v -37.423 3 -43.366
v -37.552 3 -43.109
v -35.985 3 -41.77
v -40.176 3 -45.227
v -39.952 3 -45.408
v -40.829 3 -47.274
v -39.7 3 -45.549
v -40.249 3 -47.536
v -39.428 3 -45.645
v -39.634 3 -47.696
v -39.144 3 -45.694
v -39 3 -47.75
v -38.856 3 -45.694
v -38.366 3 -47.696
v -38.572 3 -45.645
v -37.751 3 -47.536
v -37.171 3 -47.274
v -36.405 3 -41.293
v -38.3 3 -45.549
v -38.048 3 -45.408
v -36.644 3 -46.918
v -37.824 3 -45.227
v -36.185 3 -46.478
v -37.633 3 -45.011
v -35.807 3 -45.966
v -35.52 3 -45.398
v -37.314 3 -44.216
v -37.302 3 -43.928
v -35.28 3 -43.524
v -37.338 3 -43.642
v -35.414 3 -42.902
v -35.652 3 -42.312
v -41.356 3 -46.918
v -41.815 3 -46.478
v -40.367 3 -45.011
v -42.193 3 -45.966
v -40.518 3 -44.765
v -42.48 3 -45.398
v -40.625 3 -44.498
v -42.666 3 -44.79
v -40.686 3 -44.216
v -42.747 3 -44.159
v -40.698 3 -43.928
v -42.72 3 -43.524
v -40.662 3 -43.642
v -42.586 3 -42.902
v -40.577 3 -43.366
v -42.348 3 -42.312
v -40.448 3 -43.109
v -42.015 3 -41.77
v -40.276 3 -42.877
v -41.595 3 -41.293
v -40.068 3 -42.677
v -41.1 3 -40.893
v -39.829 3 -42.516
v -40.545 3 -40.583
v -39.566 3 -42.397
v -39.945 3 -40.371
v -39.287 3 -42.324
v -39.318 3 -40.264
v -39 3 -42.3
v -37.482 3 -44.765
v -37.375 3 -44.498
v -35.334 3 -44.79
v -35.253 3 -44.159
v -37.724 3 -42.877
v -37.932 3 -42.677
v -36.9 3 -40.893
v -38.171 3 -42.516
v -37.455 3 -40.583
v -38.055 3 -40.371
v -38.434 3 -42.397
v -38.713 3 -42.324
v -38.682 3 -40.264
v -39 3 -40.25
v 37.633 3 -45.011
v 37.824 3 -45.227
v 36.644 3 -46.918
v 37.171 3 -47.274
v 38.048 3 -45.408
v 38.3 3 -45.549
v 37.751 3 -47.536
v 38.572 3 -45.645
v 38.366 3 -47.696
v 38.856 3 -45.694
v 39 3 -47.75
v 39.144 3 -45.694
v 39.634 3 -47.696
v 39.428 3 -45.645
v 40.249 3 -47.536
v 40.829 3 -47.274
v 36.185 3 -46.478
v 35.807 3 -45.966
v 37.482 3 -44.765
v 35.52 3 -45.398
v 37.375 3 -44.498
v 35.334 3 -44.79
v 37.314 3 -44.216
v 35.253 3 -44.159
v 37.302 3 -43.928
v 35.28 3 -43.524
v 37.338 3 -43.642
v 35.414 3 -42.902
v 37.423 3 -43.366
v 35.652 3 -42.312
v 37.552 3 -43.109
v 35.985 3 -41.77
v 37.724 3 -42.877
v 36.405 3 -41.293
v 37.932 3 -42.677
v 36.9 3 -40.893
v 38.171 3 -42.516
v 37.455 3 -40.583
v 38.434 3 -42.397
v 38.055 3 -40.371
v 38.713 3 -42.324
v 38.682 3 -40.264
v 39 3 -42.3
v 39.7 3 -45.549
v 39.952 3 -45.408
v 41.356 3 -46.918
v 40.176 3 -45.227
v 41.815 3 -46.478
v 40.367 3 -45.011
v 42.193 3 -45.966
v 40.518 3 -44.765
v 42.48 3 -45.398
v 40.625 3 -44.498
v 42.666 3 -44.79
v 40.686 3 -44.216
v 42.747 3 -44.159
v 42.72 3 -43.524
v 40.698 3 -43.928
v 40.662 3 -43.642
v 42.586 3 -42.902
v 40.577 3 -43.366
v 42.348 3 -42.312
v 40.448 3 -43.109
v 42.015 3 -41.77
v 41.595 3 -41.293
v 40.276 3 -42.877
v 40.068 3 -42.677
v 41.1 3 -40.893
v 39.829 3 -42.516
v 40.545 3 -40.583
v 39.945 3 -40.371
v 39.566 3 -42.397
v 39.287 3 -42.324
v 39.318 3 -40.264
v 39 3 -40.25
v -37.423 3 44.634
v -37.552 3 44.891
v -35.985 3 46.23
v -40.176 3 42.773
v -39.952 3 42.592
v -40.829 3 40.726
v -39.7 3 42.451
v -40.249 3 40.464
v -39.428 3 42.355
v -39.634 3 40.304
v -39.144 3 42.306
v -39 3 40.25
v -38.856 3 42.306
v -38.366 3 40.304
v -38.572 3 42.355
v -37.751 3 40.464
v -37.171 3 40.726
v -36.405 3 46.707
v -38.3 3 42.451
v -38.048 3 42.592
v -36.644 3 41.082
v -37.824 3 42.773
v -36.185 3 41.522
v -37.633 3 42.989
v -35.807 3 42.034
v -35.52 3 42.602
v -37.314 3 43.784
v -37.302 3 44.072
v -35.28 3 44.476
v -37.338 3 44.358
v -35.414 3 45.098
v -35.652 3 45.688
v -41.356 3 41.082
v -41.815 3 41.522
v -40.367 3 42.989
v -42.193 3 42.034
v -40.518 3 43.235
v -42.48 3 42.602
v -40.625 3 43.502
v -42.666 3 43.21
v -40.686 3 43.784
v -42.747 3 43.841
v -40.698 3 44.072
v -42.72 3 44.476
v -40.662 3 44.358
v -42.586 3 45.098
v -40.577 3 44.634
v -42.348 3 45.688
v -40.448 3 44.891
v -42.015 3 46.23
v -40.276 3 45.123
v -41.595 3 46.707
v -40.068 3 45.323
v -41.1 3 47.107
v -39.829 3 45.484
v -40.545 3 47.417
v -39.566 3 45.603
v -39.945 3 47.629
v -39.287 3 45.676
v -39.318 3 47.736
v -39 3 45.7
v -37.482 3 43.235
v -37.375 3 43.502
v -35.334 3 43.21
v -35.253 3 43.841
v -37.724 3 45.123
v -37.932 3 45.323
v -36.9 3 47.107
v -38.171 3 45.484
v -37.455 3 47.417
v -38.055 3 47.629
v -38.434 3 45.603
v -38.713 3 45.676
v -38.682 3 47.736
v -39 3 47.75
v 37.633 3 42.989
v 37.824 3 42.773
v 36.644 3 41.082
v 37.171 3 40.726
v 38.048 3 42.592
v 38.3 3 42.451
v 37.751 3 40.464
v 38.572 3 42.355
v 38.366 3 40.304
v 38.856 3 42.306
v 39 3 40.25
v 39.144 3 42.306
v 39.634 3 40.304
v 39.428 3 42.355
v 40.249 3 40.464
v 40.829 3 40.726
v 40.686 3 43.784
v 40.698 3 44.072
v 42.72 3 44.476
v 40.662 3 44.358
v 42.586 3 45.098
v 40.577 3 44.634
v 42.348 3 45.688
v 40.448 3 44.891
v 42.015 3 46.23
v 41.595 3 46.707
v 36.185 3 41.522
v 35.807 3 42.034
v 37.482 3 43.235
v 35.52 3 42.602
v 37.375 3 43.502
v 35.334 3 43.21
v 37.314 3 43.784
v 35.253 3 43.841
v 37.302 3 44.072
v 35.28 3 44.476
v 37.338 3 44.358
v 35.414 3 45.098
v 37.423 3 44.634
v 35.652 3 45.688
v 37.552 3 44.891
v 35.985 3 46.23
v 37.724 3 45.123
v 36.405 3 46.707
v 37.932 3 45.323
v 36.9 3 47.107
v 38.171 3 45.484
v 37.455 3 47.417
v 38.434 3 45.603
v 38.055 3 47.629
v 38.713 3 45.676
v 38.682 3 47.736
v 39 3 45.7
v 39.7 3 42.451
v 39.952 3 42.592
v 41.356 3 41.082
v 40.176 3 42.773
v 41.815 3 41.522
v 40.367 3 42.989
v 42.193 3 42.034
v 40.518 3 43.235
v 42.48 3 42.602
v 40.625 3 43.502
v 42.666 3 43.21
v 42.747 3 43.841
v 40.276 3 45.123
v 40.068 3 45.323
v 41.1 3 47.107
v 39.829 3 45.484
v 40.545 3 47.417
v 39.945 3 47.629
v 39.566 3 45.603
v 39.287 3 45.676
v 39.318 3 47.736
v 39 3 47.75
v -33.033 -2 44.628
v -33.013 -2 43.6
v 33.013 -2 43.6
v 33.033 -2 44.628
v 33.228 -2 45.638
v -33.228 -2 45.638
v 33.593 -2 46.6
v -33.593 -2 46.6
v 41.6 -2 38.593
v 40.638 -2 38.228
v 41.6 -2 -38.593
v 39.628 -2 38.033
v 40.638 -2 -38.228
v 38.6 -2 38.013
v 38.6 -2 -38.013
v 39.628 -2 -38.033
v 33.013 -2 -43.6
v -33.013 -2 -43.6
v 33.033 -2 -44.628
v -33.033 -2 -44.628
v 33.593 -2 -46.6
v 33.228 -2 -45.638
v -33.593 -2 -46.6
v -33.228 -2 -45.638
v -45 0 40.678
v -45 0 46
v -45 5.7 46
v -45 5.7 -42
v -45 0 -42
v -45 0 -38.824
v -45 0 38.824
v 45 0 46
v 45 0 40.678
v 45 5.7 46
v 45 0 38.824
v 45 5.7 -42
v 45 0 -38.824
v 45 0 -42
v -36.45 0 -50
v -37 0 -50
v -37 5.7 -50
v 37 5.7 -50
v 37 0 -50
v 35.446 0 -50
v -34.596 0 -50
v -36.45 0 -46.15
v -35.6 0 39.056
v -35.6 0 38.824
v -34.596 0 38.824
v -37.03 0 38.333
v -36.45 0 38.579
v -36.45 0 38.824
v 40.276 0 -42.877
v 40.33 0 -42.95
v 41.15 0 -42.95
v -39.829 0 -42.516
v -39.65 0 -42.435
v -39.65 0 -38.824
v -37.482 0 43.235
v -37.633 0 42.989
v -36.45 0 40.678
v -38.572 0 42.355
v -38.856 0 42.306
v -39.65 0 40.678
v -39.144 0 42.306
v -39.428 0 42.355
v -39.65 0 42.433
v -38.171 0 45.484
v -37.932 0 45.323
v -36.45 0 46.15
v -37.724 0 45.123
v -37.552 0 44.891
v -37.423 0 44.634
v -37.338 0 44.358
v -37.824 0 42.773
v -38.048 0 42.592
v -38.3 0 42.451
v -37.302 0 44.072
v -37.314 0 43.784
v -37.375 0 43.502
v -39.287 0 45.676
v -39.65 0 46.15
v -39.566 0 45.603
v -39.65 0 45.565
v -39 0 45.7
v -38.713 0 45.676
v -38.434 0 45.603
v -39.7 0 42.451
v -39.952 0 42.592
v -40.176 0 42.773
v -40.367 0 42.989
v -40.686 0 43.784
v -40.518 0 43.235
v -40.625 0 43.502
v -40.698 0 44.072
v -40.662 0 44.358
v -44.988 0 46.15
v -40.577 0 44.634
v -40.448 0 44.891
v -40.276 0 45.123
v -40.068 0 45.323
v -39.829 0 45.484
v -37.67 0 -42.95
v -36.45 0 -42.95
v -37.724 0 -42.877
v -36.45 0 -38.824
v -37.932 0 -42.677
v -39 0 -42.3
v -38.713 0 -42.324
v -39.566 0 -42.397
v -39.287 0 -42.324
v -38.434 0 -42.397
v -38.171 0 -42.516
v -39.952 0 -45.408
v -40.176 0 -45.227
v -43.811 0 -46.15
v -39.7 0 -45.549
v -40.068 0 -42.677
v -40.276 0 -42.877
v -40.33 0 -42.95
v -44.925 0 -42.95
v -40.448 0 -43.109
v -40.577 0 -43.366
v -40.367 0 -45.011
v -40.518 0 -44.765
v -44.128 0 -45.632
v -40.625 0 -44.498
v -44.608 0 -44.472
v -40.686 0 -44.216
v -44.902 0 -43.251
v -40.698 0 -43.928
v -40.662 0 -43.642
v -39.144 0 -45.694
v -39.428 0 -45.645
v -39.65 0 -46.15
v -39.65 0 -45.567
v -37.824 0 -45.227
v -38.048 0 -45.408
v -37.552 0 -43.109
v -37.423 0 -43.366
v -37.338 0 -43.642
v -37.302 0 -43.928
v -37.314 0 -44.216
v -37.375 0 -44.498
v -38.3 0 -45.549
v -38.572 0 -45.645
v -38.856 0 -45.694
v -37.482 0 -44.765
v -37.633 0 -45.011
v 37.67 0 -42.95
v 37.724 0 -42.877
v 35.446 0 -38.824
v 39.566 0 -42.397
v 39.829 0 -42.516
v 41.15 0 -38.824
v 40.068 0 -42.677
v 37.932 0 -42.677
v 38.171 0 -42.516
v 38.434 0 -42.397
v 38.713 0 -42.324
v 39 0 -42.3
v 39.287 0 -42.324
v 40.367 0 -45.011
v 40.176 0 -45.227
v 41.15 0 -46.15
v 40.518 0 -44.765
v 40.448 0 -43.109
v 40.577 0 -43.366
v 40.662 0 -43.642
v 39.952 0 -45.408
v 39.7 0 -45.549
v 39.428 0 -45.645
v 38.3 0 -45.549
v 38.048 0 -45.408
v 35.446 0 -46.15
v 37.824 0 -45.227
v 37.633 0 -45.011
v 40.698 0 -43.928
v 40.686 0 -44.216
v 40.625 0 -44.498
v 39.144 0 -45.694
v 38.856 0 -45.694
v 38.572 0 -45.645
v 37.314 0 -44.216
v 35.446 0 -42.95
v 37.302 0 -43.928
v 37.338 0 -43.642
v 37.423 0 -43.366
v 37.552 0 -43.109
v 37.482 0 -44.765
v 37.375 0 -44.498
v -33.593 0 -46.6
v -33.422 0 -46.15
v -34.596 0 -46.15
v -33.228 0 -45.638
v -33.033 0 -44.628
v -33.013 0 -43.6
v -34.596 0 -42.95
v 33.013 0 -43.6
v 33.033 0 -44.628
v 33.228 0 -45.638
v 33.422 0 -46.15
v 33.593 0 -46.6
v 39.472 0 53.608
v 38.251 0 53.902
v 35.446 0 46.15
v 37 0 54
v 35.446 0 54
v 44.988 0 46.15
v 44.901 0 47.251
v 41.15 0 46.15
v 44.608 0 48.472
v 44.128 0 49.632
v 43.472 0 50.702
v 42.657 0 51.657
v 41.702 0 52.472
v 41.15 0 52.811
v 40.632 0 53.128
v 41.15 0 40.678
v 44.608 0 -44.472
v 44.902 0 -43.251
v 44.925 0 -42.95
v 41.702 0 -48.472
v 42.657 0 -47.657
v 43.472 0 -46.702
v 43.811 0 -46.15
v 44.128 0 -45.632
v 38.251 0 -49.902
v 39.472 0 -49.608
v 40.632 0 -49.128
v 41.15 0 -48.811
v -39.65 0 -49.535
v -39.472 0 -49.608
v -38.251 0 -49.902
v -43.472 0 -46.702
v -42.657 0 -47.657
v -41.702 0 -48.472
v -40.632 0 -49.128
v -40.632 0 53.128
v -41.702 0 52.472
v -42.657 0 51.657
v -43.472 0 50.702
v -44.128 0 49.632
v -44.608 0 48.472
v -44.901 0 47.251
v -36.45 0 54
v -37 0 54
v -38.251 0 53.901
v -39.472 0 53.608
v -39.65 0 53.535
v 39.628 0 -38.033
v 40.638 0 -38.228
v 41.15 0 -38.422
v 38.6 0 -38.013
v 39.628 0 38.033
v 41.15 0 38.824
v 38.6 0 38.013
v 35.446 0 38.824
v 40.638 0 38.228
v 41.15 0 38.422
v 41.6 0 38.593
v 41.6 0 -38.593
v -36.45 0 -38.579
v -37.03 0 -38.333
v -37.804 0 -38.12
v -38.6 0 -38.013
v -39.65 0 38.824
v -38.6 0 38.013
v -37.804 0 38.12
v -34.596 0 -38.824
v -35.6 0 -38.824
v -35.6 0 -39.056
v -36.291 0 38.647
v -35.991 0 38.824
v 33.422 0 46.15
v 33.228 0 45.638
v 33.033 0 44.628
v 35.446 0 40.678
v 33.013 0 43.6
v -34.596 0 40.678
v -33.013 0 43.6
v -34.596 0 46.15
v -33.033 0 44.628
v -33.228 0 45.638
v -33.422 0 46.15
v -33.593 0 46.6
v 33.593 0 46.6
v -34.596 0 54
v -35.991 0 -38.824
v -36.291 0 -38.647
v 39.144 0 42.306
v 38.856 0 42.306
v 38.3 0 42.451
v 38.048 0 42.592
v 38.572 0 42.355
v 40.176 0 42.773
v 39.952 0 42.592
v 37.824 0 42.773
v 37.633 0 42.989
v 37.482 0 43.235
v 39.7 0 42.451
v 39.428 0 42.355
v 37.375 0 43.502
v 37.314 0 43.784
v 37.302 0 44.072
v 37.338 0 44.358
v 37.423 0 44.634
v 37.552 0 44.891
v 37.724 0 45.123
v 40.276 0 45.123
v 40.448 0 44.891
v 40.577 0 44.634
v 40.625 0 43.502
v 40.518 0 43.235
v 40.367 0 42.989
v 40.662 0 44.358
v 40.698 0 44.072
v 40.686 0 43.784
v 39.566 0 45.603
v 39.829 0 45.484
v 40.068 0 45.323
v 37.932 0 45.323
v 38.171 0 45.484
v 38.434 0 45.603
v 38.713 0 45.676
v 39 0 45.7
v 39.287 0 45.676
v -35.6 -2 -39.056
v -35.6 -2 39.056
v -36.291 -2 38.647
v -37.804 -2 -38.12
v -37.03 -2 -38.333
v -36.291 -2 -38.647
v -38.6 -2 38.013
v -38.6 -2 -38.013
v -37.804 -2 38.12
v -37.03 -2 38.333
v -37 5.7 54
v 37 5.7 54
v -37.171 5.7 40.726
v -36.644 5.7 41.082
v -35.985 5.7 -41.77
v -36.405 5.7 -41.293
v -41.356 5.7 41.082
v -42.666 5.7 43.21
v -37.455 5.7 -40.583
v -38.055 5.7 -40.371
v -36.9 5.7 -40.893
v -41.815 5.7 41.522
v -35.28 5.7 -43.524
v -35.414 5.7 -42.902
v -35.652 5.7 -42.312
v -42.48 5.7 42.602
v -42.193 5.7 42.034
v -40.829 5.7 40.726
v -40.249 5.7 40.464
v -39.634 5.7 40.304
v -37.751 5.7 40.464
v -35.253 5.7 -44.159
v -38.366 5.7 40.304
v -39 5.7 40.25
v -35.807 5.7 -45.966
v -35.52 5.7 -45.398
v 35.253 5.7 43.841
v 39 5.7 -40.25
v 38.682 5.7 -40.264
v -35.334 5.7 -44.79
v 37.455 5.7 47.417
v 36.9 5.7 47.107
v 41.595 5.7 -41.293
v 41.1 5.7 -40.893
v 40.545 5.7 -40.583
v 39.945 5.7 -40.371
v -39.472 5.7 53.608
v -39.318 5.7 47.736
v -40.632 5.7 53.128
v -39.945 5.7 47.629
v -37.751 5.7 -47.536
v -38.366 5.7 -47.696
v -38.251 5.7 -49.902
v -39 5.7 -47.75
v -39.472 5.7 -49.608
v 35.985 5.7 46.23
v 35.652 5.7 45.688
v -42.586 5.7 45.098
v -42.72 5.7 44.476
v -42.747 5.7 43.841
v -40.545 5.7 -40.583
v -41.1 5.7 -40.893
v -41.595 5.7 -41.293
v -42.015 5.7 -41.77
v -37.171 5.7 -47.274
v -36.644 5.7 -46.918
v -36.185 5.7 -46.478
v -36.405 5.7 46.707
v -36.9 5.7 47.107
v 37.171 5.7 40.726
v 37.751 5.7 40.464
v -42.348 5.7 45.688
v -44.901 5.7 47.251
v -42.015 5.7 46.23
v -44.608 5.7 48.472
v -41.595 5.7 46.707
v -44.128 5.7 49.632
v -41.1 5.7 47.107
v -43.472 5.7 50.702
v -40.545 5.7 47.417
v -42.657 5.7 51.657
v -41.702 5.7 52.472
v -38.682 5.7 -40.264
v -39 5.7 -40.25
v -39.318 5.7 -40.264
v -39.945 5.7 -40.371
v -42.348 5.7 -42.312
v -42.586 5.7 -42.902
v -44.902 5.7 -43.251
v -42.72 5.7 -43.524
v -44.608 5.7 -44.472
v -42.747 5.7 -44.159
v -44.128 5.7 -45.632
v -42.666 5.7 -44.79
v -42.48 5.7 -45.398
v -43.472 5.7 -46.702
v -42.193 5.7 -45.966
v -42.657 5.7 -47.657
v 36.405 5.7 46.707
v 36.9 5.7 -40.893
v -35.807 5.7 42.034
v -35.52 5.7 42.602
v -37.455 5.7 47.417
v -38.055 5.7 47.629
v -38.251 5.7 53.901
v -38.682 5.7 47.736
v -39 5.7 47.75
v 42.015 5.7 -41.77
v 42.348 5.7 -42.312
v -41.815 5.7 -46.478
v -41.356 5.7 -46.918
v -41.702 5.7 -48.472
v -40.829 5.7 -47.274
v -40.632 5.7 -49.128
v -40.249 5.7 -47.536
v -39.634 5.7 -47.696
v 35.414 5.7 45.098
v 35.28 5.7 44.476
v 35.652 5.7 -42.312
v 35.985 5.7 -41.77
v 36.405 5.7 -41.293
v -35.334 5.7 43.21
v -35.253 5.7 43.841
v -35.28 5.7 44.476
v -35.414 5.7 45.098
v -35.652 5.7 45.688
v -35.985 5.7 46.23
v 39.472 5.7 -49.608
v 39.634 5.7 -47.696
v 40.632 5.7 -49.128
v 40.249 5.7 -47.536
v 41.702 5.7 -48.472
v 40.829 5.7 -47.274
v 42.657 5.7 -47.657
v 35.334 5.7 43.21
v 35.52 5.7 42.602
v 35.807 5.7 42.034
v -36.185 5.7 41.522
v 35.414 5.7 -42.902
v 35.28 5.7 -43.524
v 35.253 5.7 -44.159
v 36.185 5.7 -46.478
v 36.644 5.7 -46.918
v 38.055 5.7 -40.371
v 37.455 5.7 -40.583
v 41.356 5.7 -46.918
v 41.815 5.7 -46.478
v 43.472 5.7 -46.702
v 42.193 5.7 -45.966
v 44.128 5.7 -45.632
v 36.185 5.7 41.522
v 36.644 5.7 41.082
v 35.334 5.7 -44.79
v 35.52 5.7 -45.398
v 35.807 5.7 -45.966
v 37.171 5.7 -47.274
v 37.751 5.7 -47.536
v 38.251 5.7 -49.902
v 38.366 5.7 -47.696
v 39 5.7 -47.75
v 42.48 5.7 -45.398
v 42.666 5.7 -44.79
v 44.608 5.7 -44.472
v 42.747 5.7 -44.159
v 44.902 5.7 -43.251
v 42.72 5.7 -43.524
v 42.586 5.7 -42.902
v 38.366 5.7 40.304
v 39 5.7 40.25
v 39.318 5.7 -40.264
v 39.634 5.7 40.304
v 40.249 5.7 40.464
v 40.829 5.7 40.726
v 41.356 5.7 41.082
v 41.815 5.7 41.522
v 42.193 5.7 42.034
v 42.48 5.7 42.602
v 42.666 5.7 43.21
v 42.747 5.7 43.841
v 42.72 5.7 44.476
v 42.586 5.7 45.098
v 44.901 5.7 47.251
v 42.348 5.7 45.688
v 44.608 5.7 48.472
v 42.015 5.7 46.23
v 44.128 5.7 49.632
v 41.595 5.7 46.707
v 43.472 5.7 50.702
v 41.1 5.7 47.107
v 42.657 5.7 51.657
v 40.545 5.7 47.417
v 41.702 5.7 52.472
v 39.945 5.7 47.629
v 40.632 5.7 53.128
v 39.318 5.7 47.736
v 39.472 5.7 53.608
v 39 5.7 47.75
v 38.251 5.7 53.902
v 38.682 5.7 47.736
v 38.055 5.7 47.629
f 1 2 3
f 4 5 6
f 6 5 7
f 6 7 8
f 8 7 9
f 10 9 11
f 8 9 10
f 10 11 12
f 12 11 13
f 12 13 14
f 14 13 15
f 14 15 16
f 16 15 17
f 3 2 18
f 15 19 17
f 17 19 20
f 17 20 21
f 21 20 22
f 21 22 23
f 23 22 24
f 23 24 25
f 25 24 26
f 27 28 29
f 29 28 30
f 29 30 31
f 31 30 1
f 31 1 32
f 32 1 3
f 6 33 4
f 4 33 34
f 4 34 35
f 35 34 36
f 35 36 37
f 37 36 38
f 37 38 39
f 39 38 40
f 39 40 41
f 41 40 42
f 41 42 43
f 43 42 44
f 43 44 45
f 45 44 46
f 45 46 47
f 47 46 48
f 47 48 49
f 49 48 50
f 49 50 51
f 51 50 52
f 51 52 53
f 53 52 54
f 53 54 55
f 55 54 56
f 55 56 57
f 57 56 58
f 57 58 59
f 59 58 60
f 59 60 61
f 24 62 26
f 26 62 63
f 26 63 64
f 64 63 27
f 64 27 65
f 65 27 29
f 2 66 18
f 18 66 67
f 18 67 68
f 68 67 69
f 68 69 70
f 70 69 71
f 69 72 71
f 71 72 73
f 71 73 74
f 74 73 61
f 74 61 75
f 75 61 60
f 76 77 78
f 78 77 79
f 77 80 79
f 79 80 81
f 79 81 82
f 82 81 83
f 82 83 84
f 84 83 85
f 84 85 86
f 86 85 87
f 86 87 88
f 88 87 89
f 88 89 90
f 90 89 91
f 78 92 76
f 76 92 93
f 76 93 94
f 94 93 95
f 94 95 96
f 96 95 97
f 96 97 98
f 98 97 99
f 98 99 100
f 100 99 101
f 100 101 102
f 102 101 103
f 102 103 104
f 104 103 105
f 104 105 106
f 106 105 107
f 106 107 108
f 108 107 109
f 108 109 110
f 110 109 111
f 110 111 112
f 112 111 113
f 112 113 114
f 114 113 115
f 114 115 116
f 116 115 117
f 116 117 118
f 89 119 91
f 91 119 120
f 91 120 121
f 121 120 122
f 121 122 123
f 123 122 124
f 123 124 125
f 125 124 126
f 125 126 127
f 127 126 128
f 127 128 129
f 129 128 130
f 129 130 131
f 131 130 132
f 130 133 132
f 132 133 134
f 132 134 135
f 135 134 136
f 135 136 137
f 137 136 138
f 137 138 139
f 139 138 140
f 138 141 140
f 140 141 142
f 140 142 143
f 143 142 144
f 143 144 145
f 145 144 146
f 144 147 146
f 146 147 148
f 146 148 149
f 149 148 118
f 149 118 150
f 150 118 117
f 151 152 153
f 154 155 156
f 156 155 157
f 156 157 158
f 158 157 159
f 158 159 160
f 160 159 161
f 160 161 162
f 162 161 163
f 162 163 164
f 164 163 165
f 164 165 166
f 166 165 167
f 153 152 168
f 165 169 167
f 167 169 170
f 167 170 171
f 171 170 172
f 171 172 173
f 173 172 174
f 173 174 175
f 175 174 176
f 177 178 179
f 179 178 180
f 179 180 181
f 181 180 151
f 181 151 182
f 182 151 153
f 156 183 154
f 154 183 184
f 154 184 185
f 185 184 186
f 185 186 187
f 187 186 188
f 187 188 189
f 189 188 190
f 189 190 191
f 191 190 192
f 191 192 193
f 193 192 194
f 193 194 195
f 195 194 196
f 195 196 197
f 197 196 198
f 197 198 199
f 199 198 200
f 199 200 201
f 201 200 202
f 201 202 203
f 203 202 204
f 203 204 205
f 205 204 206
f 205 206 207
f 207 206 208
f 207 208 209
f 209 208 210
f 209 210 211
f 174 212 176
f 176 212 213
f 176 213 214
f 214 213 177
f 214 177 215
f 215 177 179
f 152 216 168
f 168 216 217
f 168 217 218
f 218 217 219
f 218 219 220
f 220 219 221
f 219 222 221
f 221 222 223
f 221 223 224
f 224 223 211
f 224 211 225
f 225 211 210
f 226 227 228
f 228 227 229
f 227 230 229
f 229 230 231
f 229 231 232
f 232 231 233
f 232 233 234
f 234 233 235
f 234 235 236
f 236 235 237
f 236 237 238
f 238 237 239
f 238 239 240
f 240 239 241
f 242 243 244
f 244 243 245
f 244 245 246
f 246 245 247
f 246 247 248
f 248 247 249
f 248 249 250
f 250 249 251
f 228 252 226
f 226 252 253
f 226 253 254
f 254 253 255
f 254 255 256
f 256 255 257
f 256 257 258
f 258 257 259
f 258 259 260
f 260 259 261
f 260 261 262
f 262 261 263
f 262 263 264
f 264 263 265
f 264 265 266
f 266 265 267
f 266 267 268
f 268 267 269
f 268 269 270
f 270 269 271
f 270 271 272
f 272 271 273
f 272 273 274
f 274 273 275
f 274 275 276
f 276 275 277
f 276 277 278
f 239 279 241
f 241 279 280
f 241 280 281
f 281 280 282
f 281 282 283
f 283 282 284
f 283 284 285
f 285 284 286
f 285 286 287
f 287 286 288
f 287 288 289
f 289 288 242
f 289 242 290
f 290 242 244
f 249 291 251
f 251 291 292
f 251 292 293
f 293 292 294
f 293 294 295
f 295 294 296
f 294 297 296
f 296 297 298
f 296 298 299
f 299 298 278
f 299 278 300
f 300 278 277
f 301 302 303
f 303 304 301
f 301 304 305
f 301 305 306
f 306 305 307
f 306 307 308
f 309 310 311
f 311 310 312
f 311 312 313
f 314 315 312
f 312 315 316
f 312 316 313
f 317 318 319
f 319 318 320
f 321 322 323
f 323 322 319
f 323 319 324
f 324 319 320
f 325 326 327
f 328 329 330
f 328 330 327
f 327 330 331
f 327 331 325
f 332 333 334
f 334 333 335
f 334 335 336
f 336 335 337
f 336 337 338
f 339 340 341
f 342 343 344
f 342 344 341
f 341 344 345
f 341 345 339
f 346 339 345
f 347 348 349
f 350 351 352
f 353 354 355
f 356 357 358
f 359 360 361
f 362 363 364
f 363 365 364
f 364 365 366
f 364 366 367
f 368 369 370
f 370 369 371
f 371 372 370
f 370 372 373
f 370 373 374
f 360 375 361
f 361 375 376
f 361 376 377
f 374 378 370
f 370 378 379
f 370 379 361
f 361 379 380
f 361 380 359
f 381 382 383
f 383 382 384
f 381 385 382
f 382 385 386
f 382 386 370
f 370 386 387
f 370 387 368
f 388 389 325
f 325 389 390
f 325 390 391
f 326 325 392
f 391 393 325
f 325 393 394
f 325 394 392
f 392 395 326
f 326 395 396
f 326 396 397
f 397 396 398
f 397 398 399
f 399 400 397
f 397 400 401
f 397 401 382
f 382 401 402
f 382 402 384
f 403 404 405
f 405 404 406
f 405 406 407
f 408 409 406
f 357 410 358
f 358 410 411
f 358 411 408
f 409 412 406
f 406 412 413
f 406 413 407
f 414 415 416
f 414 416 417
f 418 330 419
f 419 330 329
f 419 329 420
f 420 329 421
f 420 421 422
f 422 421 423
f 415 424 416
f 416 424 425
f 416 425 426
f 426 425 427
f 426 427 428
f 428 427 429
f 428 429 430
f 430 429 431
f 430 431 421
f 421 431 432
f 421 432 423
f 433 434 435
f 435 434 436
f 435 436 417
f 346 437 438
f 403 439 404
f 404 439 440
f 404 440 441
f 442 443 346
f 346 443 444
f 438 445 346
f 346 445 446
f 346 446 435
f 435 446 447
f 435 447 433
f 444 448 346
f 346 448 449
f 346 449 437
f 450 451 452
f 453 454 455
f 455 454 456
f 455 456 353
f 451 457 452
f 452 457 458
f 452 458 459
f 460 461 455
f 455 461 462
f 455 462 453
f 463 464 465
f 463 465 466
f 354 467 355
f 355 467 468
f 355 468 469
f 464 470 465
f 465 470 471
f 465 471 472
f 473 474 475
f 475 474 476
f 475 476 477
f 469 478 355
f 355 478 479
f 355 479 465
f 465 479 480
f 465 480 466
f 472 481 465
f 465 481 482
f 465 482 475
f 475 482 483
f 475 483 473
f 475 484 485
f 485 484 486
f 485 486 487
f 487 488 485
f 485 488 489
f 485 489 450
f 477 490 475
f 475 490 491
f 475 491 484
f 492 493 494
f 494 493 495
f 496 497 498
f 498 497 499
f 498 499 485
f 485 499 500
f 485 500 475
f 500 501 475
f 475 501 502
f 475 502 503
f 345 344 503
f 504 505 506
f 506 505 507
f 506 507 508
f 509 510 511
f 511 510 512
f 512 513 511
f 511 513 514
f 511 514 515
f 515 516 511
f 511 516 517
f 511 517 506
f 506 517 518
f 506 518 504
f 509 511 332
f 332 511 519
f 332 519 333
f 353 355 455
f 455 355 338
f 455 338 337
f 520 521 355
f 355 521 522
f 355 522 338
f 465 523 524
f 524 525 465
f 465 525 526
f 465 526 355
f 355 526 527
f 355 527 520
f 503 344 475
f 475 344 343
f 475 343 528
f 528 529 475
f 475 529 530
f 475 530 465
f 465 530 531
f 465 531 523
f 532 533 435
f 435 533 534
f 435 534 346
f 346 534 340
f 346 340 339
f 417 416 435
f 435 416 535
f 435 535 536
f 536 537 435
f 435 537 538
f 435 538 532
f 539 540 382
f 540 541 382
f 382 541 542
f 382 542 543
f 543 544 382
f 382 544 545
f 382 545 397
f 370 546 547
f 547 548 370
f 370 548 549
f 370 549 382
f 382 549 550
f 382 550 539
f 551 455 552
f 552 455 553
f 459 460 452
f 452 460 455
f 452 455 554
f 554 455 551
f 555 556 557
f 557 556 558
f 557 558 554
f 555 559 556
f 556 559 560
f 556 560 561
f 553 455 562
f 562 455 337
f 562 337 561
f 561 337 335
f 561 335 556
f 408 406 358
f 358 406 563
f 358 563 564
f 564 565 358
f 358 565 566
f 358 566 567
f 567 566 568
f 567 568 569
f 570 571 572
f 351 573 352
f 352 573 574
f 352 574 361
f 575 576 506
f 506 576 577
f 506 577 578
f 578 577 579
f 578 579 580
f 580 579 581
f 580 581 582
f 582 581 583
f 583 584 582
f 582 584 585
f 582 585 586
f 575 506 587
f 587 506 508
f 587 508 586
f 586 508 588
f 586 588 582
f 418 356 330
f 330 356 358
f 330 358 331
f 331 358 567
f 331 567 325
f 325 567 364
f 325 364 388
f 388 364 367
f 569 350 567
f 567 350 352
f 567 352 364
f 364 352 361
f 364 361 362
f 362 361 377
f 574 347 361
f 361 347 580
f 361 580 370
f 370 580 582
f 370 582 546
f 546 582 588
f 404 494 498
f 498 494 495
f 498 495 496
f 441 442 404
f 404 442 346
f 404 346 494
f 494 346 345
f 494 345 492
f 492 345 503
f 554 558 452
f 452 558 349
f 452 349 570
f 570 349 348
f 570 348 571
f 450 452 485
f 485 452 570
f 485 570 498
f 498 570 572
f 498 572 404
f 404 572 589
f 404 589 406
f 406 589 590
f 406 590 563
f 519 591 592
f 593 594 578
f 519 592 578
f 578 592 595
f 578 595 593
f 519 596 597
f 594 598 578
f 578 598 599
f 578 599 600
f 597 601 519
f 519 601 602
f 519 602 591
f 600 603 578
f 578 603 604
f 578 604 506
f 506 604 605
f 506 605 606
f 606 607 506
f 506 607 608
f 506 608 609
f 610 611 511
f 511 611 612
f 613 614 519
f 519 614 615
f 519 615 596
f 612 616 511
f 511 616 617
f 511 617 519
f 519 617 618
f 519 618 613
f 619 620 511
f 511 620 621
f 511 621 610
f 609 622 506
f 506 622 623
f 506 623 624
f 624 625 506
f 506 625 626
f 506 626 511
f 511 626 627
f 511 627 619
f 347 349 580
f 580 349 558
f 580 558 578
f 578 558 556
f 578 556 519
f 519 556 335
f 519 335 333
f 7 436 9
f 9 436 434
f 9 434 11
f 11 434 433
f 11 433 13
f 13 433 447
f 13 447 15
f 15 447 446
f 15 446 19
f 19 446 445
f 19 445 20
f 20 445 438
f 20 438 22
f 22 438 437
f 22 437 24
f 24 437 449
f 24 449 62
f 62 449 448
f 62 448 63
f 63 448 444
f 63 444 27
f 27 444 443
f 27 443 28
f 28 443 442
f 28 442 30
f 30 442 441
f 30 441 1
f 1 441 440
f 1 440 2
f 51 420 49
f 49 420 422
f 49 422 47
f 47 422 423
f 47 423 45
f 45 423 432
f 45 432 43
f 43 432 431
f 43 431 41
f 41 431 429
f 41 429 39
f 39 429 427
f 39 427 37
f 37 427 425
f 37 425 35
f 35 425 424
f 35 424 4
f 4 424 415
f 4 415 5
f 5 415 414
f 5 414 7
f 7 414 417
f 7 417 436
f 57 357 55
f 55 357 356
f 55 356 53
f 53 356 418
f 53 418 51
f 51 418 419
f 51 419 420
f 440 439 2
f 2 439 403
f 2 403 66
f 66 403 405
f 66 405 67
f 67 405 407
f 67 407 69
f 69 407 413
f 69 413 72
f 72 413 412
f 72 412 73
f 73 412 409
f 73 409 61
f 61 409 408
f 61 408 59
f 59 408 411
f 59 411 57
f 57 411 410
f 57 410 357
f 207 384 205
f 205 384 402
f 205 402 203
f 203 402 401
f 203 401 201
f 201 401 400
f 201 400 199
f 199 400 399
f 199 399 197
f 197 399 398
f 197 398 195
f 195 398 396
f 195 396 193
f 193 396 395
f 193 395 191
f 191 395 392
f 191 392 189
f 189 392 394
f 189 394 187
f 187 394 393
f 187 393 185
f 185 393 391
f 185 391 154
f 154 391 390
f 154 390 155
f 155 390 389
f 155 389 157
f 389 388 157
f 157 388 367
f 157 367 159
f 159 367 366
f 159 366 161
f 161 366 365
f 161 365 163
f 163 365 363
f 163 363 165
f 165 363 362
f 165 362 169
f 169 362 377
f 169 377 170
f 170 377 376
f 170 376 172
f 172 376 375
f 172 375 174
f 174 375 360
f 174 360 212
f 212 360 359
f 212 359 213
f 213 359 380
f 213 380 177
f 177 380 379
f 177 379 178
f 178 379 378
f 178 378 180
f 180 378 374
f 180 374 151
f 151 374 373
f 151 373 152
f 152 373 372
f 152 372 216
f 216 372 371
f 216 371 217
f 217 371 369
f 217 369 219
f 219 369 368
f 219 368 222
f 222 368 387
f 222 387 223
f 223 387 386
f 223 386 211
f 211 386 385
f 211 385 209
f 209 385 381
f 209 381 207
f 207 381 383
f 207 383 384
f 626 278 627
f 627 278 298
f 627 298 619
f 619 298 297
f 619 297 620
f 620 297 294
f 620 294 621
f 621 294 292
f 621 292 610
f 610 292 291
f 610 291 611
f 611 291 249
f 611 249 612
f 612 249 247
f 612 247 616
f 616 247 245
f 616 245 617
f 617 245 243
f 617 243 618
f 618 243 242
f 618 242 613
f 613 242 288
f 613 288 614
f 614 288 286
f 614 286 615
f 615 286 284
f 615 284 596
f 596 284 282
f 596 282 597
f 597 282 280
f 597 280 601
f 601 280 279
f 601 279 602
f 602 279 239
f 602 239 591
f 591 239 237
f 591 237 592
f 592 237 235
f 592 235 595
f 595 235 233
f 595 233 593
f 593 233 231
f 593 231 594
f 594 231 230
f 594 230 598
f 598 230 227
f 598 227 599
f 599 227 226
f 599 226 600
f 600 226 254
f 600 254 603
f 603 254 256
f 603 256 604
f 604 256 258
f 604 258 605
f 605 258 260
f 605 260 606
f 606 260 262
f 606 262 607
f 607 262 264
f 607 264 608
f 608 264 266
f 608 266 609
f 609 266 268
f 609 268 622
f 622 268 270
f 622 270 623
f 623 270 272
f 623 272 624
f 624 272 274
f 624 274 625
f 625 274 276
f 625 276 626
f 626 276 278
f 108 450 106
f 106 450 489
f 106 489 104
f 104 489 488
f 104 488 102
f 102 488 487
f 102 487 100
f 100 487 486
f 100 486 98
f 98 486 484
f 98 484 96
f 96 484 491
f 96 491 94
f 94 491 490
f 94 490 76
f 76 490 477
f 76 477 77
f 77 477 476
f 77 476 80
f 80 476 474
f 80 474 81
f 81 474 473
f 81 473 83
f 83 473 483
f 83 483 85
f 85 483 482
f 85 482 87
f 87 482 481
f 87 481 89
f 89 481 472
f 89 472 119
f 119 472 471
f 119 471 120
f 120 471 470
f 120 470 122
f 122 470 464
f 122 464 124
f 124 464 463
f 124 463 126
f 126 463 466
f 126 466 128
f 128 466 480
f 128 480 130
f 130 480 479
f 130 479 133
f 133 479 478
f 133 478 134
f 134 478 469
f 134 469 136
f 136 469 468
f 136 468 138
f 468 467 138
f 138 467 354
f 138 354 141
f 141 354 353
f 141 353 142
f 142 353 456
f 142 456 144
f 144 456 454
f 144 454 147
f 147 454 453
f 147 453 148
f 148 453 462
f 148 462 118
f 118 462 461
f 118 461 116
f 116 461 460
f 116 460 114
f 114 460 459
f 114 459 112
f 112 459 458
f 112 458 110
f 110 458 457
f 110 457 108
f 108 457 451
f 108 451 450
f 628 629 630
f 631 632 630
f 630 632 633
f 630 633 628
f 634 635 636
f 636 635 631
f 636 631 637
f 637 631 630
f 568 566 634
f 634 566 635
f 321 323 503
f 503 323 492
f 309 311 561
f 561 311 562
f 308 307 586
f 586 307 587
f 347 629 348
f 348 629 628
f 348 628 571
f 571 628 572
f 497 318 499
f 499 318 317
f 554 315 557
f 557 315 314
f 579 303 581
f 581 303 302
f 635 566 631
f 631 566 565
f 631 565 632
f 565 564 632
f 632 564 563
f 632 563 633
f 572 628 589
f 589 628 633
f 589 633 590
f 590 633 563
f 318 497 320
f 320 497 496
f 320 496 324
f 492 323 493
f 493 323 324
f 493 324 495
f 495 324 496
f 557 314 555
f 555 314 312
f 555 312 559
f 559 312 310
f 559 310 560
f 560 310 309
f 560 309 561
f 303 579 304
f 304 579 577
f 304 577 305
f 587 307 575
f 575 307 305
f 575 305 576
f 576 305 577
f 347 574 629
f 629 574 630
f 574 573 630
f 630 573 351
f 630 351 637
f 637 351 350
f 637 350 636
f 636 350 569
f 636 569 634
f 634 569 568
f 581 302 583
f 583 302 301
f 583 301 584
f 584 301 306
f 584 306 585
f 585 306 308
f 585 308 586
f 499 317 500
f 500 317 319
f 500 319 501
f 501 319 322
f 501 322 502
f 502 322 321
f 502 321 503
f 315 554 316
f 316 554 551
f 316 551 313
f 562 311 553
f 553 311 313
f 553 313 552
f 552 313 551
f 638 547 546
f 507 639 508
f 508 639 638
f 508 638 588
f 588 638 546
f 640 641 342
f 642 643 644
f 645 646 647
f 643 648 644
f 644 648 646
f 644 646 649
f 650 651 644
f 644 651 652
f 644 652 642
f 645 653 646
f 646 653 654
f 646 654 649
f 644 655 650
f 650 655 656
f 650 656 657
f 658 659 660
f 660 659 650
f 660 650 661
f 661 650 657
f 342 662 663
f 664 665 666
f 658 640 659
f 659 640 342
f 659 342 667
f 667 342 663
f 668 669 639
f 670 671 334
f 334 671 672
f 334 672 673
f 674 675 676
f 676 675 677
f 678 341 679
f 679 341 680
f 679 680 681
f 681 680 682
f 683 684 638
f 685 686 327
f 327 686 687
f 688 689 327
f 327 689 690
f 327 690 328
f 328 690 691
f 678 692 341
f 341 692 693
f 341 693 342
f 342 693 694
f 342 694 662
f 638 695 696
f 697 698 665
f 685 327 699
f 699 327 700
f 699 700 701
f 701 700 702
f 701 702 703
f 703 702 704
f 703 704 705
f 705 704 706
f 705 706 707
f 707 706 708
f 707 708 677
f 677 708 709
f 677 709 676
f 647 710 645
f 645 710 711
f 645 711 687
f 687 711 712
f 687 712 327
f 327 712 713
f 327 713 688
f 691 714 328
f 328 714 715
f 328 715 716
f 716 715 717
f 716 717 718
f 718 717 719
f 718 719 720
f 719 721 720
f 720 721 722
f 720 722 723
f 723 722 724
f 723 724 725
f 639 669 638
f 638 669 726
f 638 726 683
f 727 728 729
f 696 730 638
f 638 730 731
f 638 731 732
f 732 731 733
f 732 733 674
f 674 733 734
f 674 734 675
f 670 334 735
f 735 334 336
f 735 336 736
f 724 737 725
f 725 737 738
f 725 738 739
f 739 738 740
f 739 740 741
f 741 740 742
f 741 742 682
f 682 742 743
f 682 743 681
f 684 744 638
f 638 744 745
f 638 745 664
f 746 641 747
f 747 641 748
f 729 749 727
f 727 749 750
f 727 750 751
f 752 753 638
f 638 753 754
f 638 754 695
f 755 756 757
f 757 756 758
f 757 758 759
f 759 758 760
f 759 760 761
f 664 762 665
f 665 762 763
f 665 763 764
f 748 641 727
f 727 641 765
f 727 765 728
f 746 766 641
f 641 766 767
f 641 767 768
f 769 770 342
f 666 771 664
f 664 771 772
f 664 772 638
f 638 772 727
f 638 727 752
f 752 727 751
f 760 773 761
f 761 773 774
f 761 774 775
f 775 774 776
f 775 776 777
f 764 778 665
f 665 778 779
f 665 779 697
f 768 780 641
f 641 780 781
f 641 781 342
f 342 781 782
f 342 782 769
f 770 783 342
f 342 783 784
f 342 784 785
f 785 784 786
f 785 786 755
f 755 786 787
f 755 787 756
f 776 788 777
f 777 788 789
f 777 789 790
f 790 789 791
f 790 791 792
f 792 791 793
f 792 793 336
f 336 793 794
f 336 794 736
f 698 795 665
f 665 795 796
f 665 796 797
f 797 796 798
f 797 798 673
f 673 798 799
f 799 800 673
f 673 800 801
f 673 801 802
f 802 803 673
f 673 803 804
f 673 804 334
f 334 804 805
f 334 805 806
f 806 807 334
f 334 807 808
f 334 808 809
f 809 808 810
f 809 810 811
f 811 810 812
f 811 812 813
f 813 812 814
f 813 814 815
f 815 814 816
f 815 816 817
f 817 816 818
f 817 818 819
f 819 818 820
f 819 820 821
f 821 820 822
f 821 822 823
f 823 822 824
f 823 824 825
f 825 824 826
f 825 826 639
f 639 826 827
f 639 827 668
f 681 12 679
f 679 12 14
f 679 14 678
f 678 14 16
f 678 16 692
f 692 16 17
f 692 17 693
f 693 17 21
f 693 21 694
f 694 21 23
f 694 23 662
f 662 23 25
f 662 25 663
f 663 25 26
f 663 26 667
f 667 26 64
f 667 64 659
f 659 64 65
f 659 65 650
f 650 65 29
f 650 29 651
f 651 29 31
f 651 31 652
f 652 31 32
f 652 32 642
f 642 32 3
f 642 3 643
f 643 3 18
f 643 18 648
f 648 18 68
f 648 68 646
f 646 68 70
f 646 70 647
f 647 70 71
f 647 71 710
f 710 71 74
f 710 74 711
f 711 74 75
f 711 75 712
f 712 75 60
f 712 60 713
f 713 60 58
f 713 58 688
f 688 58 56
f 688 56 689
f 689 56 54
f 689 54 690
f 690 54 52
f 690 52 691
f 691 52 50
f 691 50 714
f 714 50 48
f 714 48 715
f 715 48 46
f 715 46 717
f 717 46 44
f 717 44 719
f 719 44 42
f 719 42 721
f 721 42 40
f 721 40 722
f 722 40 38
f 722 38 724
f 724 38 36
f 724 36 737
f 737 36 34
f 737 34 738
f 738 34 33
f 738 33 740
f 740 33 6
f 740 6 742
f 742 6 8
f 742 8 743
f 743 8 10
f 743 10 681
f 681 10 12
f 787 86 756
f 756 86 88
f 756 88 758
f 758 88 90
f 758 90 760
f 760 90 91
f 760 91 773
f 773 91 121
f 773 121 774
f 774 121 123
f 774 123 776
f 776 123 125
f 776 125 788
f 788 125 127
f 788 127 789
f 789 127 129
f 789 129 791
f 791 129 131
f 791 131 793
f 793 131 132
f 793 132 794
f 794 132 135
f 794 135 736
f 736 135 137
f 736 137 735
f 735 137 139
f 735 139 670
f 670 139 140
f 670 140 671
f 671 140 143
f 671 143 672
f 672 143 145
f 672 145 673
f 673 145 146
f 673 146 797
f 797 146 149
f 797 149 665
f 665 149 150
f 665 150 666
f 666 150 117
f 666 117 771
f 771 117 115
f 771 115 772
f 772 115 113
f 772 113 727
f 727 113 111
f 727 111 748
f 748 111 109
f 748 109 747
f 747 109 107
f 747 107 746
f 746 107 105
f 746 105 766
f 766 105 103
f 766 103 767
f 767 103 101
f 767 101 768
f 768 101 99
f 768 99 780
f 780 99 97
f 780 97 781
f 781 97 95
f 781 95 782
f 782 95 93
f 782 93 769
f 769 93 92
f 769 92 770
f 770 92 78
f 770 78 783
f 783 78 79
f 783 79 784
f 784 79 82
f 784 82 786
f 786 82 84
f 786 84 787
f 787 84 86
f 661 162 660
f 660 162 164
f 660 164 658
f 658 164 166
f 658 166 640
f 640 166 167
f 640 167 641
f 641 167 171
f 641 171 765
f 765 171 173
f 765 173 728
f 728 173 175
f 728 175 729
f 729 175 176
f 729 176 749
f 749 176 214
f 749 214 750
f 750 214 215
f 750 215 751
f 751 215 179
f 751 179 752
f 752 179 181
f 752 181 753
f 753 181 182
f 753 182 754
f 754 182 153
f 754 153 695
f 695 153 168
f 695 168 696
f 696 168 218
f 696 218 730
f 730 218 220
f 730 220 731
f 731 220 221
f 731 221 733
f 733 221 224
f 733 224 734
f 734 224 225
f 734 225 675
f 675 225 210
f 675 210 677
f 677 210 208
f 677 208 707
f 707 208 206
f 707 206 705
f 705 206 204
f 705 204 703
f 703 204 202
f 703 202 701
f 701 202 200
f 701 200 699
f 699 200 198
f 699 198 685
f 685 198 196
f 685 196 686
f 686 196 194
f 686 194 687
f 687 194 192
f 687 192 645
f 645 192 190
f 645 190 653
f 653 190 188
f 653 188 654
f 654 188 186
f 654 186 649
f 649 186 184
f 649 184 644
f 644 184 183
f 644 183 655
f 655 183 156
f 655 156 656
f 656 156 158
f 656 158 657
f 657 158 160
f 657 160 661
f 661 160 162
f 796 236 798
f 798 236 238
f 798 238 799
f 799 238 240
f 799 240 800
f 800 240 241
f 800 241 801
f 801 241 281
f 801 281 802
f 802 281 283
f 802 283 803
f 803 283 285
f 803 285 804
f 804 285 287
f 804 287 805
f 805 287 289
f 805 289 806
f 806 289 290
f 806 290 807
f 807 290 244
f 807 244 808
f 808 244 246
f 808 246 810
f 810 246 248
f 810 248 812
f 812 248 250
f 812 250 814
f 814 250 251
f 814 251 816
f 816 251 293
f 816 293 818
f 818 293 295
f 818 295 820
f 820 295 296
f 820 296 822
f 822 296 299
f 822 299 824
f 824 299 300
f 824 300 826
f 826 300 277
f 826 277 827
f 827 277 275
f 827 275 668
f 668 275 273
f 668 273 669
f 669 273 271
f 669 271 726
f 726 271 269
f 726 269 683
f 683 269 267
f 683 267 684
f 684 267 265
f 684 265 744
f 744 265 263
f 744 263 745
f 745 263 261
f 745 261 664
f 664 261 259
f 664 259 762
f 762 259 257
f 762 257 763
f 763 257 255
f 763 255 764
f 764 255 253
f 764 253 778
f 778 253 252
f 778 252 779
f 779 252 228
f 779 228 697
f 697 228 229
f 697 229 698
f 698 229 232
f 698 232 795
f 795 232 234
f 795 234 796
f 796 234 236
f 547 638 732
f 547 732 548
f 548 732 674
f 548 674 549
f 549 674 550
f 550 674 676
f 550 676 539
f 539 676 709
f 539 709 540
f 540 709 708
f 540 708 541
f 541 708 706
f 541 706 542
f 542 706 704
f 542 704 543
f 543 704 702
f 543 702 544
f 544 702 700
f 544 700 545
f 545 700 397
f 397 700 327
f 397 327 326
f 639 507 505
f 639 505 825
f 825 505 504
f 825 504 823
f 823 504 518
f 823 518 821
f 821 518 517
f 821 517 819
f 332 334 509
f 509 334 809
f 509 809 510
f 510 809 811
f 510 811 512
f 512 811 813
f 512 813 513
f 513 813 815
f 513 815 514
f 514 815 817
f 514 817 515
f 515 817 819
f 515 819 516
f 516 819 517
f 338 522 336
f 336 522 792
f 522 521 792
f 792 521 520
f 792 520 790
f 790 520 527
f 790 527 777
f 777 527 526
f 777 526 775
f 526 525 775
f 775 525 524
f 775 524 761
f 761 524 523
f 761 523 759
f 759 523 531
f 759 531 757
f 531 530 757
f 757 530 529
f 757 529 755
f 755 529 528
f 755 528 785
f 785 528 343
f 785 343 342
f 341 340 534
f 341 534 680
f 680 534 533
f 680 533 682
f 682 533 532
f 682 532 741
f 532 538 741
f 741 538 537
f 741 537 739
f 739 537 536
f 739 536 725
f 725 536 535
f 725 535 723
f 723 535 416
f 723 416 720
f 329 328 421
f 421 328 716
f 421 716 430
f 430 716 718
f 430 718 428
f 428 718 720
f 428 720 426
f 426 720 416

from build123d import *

# Parameters (mm, degrees)
SKETCH1_W           = 90
SKETCH1_H           = 100
BOSS_EXTRUDE1_DEPTH = 3
SKETCH2_R           = 1.7
CUT_EXTRUDE1_DEPTH  = 4
SKETCH4_W           = 80.2
SKETCH4_H           = 93.2
SKETCH4_W_2         = 74.2
SKETCH4_H_2         = 87.2
BOSS_EXTRUDE2_DEPTH = 2
CUT_EXTRUDE5_START  = -3
SKETCH6_R           = 6
CUT_EXTRUDE5_DEPTH  = 3
SKETCH7_W           = 90
SKETCH7_H           = 3
BOSS_EXTRUDE3_DEPTH = 4
SKETCH8_R           = 3.75
BOSS_EXTRUDE4_DEPTH = 2.7
FILLET1_R           = 8


with BuildPart() as part:
    # Sketch1 → Boss-Extrude1 (new body)
    with BuildSketch(Plane(origin=(0, 0, 0), x_dir=(1, 0, 0), z_dir=(0, 1, 0))):
        Rectangle(SKETCH1_W, SKETCH1_H)
    extrude(amount=BOSS_EXTRUDE1_DEPTH)

    # Sketch2 → Cut-Extrude1 (cut, through all)
    with BuildSketch(Plane(origin=(0, 3, 0), x_dir=(1, 0, 0), z_dir=(0, 1, 0))):
        with Locations((-39, 44)):
            Circle(SKETCH2_R)
        with Locations((39, 44)):
            Circle(SKETCH2_R)
        with Locations((39, -44)):
            Circle(SKETCH2_R)
        with Locations((-39, -44)):
            Circle(SKETCH2_R)
    extrude(amount=-CUT_EXTRUDE1_DEPTH, mode=Mode.SUBTRACT)

    # Sketch4 → Boss-Extrude2 (add)
    with BuildSketch(Plane.XZ):
        with Locations((1.5, 0)):
            Rectangle(SKETCH4_W, SKETCH4_H)
        with Locations((1.5, 0)):
            Rectangle(SKETCH4_W_2, SKETCH4_H_2, mode=Mode.SUBTRACT)
    extrude(amount=BOSS_EXTRUDE2_DEPTH)

    # Sketch6 → Cut-Extrude5 (cut, through all)
    with BuildSketch(Plane(origin=(0, 3, 0), x_dir=(1, 0, 0), z_dir=(0, 1, 0)).offset(CUT_EXTRUDE5_START)):
        with Locations((-39, 44)):
            Circle(SKETCH6_R)
        with Locations((-39, -44)):
            Circle(SKETCH6_R)
        with Locations((39, -44)):
            Circle(SKETCH6_R)
        with Locations((39, 44)):
            Circle(SKETCH6_R)
    extrude(amount=-CUT_EXTRUDE5_DEPTH, mode=Mode.SUBTRACT)

    # Sketch7 → Boss-Extrude3 (add)
    with BuildSketch(Plane.XY.offset(50)):
        with Locations((0, 1.5)):
            Rectangle(SKETCH7_W, SKETCH7_H)
    extrude(amount=BOSS_EXTRUDE3_DEPTH)

    # Sketch8 → Boss-Extrude4 (add)
    with BuildSketch(Plane(origin=(0, 3, 0), x_dir=(1, 0, 0), z_dir=(0, 1, 0))):
        Polygon((-45, -50), (-45, -54), (45, -54), (45, -50), (45, 50), (-45, 50), align=None)
        with Locations((-39, 44)):
            Circle(SKETCH8_R, mode=Mode.SUBTRACT)
        with Locations((39, 44)):
            Circle(SKETCH8_R, mode=Mode.SUBTRACT)
        with Locations((-39, -44)):
            Circle(SKETCH8_R, mode=Mode.SUBTRACT)
        with Locations((39, -44)):
            Circle(SKETCH8_R, mode=Mode.SUBTRACT)
    extrude(amount=BOSS_EXTRUDE4_DEPTH)

    # Fillet1
    fillet1_edges = [part.edges().sort_by_distance(p)[0] for p in [
        (-45, 2.85, 54),
        (45, 2.85, 54),
        (-45, 2.85, -50),
        (45, 2.85, -50),
    ]]
    fillet(fillet1_edges, radius=FILLET1_R)


solid = part.part
